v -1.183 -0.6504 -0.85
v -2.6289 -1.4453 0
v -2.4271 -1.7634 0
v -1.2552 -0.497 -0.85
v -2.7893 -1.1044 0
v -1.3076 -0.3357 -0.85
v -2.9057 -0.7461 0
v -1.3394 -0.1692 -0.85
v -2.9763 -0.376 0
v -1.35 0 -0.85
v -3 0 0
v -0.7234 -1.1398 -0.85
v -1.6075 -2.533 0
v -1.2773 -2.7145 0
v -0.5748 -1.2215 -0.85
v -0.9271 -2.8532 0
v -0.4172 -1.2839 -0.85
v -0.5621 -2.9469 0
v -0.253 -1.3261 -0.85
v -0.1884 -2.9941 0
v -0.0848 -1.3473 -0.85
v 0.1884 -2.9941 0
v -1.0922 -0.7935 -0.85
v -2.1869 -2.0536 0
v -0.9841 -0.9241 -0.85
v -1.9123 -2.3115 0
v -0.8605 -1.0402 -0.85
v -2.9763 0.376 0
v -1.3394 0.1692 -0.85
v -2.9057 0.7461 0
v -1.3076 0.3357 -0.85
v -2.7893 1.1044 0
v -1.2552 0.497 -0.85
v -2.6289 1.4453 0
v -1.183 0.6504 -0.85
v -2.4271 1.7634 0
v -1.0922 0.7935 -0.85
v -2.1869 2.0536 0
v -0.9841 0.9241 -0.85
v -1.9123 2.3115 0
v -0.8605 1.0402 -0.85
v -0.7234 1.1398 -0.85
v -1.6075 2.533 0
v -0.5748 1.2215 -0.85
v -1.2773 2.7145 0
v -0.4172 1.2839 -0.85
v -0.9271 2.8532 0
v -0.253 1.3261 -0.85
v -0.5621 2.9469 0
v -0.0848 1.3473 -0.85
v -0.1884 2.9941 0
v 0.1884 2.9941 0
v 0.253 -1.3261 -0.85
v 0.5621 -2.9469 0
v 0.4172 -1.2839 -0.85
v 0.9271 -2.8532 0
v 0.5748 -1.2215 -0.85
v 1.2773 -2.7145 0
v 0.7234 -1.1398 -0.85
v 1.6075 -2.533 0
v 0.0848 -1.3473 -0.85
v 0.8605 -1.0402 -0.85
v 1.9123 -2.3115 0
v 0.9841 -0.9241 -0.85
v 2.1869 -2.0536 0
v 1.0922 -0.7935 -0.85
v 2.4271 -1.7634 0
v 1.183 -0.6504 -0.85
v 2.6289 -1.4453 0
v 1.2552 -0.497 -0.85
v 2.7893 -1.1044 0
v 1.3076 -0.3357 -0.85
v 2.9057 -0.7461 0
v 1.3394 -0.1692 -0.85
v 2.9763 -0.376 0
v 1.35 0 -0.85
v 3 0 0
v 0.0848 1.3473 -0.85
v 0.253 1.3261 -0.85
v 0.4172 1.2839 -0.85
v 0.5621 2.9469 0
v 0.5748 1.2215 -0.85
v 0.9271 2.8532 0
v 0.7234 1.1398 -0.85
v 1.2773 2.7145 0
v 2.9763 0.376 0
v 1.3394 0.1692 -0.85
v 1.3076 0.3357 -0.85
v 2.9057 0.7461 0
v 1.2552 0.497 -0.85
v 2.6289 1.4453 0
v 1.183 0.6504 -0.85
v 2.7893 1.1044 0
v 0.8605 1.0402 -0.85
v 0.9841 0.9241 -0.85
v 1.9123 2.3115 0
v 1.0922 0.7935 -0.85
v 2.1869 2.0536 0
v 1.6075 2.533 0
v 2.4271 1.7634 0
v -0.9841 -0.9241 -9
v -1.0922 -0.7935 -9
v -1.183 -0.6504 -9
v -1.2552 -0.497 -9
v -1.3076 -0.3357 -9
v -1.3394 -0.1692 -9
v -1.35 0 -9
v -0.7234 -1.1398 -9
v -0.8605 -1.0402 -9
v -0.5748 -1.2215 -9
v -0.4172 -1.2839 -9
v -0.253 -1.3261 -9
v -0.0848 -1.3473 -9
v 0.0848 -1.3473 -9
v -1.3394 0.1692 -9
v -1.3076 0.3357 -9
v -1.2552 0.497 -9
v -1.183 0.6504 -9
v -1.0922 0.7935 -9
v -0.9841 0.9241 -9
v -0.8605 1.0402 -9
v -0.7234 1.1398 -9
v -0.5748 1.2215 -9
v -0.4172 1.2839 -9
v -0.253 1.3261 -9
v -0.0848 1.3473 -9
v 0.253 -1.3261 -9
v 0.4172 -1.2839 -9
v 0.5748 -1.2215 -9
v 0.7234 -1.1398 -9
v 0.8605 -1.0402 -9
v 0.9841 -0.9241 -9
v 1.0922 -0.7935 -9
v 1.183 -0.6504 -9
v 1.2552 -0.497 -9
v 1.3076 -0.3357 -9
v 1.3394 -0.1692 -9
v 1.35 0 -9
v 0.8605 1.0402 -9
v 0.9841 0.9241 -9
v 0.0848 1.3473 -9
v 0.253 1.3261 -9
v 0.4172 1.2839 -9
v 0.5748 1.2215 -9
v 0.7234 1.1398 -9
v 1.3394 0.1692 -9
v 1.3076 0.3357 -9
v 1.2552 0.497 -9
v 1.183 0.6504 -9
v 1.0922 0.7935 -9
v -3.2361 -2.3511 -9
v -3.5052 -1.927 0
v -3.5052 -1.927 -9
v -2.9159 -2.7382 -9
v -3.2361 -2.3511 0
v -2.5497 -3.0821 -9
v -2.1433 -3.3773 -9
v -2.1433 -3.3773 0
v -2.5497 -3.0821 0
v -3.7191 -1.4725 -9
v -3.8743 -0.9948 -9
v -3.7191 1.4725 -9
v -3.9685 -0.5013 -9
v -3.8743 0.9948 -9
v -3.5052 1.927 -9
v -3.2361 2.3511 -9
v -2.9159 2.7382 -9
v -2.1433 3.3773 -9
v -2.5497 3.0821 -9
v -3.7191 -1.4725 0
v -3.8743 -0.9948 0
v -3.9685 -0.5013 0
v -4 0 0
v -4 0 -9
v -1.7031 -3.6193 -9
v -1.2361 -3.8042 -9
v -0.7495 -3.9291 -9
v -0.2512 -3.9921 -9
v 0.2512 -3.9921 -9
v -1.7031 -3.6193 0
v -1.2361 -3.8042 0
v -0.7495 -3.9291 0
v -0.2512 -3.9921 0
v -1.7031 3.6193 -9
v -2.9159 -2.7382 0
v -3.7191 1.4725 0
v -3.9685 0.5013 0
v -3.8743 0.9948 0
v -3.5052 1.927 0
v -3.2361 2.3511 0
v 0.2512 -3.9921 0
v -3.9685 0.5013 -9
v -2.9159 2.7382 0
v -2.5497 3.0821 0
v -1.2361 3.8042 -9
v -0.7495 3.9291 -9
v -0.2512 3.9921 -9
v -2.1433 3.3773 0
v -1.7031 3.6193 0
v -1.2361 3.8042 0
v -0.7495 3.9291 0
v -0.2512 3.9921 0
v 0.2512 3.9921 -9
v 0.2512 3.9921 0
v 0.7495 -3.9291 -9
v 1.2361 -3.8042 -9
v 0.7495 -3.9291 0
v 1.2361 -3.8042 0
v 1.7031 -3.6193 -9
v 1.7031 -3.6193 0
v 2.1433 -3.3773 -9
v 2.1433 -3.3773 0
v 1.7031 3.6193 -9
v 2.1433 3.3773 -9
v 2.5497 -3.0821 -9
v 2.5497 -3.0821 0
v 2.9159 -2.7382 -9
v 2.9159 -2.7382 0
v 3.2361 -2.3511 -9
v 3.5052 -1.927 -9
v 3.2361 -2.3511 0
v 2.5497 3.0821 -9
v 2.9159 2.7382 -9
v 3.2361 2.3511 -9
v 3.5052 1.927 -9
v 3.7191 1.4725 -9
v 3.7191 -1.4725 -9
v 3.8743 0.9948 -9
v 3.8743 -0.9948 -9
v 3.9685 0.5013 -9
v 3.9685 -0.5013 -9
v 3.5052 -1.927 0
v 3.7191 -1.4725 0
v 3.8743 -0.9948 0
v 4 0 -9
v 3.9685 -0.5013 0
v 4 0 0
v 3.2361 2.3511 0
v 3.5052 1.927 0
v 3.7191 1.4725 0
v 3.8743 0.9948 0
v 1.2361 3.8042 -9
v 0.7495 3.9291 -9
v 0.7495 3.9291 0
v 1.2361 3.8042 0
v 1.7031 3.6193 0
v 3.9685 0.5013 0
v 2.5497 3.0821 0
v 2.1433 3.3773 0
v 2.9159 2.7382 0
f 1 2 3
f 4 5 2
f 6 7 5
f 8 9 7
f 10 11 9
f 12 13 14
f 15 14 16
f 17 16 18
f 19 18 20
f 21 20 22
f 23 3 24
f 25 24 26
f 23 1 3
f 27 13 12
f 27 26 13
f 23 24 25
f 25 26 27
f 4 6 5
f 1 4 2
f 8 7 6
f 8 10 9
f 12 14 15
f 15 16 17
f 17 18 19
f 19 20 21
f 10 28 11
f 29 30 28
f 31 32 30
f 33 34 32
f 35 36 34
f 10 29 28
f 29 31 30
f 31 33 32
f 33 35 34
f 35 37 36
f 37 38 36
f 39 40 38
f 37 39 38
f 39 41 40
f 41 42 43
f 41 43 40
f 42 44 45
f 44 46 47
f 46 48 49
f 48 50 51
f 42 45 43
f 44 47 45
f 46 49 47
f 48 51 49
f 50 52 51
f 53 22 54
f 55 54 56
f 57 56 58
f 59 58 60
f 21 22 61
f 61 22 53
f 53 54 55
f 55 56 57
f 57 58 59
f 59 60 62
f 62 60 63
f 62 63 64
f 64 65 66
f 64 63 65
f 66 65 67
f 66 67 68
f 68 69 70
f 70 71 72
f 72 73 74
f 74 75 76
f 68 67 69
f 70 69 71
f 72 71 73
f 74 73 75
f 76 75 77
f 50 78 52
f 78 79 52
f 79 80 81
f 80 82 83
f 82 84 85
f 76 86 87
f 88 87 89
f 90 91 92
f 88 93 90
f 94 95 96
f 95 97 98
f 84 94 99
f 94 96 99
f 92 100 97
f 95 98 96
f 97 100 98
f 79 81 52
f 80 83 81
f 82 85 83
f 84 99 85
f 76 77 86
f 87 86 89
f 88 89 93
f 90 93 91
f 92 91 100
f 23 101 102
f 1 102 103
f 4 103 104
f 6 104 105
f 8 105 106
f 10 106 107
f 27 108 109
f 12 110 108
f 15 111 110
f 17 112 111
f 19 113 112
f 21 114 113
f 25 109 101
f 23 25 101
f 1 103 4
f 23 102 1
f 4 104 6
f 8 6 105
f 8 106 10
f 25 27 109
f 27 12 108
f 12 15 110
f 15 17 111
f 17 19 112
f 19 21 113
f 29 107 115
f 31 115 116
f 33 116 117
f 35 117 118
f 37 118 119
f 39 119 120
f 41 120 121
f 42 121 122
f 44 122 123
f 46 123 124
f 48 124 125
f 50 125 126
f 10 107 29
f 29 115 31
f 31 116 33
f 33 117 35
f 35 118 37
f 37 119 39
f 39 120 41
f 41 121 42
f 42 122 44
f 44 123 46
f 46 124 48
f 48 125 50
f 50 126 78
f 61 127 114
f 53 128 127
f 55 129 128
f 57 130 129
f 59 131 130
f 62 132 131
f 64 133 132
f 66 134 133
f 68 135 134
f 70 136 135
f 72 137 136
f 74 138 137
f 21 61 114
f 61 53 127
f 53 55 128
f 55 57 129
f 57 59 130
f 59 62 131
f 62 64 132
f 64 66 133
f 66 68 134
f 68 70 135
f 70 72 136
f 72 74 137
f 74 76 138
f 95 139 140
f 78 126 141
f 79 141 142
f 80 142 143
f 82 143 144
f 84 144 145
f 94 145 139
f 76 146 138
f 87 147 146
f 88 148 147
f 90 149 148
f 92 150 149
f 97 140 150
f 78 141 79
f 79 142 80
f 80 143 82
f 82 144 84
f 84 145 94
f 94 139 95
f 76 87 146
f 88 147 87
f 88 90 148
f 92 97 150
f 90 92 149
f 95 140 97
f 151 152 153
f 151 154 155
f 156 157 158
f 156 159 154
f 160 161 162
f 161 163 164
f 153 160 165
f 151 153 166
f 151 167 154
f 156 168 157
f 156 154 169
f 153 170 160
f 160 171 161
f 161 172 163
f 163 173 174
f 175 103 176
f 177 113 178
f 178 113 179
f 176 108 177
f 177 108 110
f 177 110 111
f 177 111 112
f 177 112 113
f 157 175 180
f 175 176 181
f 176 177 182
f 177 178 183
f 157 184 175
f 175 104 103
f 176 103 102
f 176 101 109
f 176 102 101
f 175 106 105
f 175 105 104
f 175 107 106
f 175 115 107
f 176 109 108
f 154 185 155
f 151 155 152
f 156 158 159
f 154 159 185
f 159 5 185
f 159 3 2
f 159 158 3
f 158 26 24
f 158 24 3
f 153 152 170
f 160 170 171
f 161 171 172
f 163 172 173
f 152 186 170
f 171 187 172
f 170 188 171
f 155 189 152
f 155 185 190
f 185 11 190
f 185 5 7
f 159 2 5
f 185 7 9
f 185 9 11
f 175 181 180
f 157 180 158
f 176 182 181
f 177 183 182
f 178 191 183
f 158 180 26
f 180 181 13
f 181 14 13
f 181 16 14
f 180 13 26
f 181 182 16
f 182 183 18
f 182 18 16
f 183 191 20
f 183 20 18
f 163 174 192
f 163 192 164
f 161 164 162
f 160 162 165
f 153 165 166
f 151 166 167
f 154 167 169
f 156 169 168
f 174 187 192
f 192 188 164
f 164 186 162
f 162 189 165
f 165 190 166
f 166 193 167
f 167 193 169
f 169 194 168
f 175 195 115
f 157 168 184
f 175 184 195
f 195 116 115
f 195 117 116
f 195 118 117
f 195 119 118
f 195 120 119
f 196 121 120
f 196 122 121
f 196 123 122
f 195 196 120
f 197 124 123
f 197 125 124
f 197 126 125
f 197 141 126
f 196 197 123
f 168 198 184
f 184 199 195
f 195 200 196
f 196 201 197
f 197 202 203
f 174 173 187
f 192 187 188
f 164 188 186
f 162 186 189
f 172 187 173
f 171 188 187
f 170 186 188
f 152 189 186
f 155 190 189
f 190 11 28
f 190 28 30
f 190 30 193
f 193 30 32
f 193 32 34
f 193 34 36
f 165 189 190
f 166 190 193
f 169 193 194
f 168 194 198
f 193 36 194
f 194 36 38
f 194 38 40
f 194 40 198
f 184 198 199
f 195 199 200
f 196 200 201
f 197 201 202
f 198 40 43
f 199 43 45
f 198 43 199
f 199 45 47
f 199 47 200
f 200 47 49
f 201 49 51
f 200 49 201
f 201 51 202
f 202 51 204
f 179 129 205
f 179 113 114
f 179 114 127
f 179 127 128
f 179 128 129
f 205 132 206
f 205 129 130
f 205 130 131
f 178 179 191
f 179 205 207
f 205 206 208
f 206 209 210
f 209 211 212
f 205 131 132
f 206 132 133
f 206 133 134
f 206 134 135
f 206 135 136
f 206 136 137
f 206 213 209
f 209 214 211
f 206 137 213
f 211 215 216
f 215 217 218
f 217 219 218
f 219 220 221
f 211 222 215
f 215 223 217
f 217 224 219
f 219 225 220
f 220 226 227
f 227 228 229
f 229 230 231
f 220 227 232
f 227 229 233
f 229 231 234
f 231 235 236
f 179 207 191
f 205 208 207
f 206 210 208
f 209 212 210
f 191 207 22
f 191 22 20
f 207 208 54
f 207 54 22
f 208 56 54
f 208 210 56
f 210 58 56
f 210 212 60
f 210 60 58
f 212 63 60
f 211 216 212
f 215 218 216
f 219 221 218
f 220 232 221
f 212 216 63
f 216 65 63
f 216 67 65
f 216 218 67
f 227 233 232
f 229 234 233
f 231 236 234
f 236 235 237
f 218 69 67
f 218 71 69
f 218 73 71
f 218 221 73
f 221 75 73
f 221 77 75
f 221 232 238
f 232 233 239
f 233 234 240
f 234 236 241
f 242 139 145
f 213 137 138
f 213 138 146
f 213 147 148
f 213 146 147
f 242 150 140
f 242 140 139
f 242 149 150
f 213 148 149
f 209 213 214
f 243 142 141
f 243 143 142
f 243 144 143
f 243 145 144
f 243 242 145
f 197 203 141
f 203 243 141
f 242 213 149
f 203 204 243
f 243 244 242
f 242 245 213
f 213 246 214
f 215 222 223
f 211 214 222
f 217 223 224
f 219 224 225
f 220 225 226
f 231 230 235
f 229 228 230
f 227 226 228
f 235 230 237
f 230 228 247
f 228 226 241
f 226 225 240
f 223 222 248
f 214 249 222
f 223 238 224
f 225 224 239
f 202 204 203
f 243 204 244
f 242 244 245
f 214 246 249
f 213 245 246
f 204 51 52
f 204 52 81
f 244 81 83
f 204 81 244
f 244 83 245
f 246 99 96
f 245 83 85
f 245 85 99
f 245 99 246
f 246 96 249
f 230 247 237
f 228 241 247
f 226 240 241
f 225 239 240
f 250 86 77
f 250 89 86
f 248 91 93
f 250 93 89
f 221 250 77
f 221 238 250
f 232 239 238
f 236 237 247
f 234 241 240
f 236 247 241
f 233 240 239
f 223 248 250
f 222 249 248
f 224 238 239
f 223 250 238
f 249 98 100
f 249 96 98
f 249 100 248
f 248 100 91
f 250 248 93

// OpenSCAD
$fn = 50;

difference() {
	union() {
		translate(v = [0, 0, -9.0]) {
			cylinder(h = 9, r = 4.0);
		}
	}
	union() {
		translate(v = [0, 0, 0]) {
			rotate(a = [0, 0, 0]) {
				difference() {
					union() {
						translate(v = [0, 0, -12.0]) {
							cylinder(h = 12, r = 1.0);
						}
						translate(v = [0, 0, -0.85]) {
							cylinder(h = 0.85, r1 = 1.35, r2 = 3.0);
						}
						translate(v = [0, 0, -12.0]) {
							cylinder(h = 12, r = 1.35);
						}
						translate(v = [0, 0, -12.0]) {
							cylinder(h = 12, r = 1.0);
						}
					}
					union();
				}
			}
		}
	}
}
